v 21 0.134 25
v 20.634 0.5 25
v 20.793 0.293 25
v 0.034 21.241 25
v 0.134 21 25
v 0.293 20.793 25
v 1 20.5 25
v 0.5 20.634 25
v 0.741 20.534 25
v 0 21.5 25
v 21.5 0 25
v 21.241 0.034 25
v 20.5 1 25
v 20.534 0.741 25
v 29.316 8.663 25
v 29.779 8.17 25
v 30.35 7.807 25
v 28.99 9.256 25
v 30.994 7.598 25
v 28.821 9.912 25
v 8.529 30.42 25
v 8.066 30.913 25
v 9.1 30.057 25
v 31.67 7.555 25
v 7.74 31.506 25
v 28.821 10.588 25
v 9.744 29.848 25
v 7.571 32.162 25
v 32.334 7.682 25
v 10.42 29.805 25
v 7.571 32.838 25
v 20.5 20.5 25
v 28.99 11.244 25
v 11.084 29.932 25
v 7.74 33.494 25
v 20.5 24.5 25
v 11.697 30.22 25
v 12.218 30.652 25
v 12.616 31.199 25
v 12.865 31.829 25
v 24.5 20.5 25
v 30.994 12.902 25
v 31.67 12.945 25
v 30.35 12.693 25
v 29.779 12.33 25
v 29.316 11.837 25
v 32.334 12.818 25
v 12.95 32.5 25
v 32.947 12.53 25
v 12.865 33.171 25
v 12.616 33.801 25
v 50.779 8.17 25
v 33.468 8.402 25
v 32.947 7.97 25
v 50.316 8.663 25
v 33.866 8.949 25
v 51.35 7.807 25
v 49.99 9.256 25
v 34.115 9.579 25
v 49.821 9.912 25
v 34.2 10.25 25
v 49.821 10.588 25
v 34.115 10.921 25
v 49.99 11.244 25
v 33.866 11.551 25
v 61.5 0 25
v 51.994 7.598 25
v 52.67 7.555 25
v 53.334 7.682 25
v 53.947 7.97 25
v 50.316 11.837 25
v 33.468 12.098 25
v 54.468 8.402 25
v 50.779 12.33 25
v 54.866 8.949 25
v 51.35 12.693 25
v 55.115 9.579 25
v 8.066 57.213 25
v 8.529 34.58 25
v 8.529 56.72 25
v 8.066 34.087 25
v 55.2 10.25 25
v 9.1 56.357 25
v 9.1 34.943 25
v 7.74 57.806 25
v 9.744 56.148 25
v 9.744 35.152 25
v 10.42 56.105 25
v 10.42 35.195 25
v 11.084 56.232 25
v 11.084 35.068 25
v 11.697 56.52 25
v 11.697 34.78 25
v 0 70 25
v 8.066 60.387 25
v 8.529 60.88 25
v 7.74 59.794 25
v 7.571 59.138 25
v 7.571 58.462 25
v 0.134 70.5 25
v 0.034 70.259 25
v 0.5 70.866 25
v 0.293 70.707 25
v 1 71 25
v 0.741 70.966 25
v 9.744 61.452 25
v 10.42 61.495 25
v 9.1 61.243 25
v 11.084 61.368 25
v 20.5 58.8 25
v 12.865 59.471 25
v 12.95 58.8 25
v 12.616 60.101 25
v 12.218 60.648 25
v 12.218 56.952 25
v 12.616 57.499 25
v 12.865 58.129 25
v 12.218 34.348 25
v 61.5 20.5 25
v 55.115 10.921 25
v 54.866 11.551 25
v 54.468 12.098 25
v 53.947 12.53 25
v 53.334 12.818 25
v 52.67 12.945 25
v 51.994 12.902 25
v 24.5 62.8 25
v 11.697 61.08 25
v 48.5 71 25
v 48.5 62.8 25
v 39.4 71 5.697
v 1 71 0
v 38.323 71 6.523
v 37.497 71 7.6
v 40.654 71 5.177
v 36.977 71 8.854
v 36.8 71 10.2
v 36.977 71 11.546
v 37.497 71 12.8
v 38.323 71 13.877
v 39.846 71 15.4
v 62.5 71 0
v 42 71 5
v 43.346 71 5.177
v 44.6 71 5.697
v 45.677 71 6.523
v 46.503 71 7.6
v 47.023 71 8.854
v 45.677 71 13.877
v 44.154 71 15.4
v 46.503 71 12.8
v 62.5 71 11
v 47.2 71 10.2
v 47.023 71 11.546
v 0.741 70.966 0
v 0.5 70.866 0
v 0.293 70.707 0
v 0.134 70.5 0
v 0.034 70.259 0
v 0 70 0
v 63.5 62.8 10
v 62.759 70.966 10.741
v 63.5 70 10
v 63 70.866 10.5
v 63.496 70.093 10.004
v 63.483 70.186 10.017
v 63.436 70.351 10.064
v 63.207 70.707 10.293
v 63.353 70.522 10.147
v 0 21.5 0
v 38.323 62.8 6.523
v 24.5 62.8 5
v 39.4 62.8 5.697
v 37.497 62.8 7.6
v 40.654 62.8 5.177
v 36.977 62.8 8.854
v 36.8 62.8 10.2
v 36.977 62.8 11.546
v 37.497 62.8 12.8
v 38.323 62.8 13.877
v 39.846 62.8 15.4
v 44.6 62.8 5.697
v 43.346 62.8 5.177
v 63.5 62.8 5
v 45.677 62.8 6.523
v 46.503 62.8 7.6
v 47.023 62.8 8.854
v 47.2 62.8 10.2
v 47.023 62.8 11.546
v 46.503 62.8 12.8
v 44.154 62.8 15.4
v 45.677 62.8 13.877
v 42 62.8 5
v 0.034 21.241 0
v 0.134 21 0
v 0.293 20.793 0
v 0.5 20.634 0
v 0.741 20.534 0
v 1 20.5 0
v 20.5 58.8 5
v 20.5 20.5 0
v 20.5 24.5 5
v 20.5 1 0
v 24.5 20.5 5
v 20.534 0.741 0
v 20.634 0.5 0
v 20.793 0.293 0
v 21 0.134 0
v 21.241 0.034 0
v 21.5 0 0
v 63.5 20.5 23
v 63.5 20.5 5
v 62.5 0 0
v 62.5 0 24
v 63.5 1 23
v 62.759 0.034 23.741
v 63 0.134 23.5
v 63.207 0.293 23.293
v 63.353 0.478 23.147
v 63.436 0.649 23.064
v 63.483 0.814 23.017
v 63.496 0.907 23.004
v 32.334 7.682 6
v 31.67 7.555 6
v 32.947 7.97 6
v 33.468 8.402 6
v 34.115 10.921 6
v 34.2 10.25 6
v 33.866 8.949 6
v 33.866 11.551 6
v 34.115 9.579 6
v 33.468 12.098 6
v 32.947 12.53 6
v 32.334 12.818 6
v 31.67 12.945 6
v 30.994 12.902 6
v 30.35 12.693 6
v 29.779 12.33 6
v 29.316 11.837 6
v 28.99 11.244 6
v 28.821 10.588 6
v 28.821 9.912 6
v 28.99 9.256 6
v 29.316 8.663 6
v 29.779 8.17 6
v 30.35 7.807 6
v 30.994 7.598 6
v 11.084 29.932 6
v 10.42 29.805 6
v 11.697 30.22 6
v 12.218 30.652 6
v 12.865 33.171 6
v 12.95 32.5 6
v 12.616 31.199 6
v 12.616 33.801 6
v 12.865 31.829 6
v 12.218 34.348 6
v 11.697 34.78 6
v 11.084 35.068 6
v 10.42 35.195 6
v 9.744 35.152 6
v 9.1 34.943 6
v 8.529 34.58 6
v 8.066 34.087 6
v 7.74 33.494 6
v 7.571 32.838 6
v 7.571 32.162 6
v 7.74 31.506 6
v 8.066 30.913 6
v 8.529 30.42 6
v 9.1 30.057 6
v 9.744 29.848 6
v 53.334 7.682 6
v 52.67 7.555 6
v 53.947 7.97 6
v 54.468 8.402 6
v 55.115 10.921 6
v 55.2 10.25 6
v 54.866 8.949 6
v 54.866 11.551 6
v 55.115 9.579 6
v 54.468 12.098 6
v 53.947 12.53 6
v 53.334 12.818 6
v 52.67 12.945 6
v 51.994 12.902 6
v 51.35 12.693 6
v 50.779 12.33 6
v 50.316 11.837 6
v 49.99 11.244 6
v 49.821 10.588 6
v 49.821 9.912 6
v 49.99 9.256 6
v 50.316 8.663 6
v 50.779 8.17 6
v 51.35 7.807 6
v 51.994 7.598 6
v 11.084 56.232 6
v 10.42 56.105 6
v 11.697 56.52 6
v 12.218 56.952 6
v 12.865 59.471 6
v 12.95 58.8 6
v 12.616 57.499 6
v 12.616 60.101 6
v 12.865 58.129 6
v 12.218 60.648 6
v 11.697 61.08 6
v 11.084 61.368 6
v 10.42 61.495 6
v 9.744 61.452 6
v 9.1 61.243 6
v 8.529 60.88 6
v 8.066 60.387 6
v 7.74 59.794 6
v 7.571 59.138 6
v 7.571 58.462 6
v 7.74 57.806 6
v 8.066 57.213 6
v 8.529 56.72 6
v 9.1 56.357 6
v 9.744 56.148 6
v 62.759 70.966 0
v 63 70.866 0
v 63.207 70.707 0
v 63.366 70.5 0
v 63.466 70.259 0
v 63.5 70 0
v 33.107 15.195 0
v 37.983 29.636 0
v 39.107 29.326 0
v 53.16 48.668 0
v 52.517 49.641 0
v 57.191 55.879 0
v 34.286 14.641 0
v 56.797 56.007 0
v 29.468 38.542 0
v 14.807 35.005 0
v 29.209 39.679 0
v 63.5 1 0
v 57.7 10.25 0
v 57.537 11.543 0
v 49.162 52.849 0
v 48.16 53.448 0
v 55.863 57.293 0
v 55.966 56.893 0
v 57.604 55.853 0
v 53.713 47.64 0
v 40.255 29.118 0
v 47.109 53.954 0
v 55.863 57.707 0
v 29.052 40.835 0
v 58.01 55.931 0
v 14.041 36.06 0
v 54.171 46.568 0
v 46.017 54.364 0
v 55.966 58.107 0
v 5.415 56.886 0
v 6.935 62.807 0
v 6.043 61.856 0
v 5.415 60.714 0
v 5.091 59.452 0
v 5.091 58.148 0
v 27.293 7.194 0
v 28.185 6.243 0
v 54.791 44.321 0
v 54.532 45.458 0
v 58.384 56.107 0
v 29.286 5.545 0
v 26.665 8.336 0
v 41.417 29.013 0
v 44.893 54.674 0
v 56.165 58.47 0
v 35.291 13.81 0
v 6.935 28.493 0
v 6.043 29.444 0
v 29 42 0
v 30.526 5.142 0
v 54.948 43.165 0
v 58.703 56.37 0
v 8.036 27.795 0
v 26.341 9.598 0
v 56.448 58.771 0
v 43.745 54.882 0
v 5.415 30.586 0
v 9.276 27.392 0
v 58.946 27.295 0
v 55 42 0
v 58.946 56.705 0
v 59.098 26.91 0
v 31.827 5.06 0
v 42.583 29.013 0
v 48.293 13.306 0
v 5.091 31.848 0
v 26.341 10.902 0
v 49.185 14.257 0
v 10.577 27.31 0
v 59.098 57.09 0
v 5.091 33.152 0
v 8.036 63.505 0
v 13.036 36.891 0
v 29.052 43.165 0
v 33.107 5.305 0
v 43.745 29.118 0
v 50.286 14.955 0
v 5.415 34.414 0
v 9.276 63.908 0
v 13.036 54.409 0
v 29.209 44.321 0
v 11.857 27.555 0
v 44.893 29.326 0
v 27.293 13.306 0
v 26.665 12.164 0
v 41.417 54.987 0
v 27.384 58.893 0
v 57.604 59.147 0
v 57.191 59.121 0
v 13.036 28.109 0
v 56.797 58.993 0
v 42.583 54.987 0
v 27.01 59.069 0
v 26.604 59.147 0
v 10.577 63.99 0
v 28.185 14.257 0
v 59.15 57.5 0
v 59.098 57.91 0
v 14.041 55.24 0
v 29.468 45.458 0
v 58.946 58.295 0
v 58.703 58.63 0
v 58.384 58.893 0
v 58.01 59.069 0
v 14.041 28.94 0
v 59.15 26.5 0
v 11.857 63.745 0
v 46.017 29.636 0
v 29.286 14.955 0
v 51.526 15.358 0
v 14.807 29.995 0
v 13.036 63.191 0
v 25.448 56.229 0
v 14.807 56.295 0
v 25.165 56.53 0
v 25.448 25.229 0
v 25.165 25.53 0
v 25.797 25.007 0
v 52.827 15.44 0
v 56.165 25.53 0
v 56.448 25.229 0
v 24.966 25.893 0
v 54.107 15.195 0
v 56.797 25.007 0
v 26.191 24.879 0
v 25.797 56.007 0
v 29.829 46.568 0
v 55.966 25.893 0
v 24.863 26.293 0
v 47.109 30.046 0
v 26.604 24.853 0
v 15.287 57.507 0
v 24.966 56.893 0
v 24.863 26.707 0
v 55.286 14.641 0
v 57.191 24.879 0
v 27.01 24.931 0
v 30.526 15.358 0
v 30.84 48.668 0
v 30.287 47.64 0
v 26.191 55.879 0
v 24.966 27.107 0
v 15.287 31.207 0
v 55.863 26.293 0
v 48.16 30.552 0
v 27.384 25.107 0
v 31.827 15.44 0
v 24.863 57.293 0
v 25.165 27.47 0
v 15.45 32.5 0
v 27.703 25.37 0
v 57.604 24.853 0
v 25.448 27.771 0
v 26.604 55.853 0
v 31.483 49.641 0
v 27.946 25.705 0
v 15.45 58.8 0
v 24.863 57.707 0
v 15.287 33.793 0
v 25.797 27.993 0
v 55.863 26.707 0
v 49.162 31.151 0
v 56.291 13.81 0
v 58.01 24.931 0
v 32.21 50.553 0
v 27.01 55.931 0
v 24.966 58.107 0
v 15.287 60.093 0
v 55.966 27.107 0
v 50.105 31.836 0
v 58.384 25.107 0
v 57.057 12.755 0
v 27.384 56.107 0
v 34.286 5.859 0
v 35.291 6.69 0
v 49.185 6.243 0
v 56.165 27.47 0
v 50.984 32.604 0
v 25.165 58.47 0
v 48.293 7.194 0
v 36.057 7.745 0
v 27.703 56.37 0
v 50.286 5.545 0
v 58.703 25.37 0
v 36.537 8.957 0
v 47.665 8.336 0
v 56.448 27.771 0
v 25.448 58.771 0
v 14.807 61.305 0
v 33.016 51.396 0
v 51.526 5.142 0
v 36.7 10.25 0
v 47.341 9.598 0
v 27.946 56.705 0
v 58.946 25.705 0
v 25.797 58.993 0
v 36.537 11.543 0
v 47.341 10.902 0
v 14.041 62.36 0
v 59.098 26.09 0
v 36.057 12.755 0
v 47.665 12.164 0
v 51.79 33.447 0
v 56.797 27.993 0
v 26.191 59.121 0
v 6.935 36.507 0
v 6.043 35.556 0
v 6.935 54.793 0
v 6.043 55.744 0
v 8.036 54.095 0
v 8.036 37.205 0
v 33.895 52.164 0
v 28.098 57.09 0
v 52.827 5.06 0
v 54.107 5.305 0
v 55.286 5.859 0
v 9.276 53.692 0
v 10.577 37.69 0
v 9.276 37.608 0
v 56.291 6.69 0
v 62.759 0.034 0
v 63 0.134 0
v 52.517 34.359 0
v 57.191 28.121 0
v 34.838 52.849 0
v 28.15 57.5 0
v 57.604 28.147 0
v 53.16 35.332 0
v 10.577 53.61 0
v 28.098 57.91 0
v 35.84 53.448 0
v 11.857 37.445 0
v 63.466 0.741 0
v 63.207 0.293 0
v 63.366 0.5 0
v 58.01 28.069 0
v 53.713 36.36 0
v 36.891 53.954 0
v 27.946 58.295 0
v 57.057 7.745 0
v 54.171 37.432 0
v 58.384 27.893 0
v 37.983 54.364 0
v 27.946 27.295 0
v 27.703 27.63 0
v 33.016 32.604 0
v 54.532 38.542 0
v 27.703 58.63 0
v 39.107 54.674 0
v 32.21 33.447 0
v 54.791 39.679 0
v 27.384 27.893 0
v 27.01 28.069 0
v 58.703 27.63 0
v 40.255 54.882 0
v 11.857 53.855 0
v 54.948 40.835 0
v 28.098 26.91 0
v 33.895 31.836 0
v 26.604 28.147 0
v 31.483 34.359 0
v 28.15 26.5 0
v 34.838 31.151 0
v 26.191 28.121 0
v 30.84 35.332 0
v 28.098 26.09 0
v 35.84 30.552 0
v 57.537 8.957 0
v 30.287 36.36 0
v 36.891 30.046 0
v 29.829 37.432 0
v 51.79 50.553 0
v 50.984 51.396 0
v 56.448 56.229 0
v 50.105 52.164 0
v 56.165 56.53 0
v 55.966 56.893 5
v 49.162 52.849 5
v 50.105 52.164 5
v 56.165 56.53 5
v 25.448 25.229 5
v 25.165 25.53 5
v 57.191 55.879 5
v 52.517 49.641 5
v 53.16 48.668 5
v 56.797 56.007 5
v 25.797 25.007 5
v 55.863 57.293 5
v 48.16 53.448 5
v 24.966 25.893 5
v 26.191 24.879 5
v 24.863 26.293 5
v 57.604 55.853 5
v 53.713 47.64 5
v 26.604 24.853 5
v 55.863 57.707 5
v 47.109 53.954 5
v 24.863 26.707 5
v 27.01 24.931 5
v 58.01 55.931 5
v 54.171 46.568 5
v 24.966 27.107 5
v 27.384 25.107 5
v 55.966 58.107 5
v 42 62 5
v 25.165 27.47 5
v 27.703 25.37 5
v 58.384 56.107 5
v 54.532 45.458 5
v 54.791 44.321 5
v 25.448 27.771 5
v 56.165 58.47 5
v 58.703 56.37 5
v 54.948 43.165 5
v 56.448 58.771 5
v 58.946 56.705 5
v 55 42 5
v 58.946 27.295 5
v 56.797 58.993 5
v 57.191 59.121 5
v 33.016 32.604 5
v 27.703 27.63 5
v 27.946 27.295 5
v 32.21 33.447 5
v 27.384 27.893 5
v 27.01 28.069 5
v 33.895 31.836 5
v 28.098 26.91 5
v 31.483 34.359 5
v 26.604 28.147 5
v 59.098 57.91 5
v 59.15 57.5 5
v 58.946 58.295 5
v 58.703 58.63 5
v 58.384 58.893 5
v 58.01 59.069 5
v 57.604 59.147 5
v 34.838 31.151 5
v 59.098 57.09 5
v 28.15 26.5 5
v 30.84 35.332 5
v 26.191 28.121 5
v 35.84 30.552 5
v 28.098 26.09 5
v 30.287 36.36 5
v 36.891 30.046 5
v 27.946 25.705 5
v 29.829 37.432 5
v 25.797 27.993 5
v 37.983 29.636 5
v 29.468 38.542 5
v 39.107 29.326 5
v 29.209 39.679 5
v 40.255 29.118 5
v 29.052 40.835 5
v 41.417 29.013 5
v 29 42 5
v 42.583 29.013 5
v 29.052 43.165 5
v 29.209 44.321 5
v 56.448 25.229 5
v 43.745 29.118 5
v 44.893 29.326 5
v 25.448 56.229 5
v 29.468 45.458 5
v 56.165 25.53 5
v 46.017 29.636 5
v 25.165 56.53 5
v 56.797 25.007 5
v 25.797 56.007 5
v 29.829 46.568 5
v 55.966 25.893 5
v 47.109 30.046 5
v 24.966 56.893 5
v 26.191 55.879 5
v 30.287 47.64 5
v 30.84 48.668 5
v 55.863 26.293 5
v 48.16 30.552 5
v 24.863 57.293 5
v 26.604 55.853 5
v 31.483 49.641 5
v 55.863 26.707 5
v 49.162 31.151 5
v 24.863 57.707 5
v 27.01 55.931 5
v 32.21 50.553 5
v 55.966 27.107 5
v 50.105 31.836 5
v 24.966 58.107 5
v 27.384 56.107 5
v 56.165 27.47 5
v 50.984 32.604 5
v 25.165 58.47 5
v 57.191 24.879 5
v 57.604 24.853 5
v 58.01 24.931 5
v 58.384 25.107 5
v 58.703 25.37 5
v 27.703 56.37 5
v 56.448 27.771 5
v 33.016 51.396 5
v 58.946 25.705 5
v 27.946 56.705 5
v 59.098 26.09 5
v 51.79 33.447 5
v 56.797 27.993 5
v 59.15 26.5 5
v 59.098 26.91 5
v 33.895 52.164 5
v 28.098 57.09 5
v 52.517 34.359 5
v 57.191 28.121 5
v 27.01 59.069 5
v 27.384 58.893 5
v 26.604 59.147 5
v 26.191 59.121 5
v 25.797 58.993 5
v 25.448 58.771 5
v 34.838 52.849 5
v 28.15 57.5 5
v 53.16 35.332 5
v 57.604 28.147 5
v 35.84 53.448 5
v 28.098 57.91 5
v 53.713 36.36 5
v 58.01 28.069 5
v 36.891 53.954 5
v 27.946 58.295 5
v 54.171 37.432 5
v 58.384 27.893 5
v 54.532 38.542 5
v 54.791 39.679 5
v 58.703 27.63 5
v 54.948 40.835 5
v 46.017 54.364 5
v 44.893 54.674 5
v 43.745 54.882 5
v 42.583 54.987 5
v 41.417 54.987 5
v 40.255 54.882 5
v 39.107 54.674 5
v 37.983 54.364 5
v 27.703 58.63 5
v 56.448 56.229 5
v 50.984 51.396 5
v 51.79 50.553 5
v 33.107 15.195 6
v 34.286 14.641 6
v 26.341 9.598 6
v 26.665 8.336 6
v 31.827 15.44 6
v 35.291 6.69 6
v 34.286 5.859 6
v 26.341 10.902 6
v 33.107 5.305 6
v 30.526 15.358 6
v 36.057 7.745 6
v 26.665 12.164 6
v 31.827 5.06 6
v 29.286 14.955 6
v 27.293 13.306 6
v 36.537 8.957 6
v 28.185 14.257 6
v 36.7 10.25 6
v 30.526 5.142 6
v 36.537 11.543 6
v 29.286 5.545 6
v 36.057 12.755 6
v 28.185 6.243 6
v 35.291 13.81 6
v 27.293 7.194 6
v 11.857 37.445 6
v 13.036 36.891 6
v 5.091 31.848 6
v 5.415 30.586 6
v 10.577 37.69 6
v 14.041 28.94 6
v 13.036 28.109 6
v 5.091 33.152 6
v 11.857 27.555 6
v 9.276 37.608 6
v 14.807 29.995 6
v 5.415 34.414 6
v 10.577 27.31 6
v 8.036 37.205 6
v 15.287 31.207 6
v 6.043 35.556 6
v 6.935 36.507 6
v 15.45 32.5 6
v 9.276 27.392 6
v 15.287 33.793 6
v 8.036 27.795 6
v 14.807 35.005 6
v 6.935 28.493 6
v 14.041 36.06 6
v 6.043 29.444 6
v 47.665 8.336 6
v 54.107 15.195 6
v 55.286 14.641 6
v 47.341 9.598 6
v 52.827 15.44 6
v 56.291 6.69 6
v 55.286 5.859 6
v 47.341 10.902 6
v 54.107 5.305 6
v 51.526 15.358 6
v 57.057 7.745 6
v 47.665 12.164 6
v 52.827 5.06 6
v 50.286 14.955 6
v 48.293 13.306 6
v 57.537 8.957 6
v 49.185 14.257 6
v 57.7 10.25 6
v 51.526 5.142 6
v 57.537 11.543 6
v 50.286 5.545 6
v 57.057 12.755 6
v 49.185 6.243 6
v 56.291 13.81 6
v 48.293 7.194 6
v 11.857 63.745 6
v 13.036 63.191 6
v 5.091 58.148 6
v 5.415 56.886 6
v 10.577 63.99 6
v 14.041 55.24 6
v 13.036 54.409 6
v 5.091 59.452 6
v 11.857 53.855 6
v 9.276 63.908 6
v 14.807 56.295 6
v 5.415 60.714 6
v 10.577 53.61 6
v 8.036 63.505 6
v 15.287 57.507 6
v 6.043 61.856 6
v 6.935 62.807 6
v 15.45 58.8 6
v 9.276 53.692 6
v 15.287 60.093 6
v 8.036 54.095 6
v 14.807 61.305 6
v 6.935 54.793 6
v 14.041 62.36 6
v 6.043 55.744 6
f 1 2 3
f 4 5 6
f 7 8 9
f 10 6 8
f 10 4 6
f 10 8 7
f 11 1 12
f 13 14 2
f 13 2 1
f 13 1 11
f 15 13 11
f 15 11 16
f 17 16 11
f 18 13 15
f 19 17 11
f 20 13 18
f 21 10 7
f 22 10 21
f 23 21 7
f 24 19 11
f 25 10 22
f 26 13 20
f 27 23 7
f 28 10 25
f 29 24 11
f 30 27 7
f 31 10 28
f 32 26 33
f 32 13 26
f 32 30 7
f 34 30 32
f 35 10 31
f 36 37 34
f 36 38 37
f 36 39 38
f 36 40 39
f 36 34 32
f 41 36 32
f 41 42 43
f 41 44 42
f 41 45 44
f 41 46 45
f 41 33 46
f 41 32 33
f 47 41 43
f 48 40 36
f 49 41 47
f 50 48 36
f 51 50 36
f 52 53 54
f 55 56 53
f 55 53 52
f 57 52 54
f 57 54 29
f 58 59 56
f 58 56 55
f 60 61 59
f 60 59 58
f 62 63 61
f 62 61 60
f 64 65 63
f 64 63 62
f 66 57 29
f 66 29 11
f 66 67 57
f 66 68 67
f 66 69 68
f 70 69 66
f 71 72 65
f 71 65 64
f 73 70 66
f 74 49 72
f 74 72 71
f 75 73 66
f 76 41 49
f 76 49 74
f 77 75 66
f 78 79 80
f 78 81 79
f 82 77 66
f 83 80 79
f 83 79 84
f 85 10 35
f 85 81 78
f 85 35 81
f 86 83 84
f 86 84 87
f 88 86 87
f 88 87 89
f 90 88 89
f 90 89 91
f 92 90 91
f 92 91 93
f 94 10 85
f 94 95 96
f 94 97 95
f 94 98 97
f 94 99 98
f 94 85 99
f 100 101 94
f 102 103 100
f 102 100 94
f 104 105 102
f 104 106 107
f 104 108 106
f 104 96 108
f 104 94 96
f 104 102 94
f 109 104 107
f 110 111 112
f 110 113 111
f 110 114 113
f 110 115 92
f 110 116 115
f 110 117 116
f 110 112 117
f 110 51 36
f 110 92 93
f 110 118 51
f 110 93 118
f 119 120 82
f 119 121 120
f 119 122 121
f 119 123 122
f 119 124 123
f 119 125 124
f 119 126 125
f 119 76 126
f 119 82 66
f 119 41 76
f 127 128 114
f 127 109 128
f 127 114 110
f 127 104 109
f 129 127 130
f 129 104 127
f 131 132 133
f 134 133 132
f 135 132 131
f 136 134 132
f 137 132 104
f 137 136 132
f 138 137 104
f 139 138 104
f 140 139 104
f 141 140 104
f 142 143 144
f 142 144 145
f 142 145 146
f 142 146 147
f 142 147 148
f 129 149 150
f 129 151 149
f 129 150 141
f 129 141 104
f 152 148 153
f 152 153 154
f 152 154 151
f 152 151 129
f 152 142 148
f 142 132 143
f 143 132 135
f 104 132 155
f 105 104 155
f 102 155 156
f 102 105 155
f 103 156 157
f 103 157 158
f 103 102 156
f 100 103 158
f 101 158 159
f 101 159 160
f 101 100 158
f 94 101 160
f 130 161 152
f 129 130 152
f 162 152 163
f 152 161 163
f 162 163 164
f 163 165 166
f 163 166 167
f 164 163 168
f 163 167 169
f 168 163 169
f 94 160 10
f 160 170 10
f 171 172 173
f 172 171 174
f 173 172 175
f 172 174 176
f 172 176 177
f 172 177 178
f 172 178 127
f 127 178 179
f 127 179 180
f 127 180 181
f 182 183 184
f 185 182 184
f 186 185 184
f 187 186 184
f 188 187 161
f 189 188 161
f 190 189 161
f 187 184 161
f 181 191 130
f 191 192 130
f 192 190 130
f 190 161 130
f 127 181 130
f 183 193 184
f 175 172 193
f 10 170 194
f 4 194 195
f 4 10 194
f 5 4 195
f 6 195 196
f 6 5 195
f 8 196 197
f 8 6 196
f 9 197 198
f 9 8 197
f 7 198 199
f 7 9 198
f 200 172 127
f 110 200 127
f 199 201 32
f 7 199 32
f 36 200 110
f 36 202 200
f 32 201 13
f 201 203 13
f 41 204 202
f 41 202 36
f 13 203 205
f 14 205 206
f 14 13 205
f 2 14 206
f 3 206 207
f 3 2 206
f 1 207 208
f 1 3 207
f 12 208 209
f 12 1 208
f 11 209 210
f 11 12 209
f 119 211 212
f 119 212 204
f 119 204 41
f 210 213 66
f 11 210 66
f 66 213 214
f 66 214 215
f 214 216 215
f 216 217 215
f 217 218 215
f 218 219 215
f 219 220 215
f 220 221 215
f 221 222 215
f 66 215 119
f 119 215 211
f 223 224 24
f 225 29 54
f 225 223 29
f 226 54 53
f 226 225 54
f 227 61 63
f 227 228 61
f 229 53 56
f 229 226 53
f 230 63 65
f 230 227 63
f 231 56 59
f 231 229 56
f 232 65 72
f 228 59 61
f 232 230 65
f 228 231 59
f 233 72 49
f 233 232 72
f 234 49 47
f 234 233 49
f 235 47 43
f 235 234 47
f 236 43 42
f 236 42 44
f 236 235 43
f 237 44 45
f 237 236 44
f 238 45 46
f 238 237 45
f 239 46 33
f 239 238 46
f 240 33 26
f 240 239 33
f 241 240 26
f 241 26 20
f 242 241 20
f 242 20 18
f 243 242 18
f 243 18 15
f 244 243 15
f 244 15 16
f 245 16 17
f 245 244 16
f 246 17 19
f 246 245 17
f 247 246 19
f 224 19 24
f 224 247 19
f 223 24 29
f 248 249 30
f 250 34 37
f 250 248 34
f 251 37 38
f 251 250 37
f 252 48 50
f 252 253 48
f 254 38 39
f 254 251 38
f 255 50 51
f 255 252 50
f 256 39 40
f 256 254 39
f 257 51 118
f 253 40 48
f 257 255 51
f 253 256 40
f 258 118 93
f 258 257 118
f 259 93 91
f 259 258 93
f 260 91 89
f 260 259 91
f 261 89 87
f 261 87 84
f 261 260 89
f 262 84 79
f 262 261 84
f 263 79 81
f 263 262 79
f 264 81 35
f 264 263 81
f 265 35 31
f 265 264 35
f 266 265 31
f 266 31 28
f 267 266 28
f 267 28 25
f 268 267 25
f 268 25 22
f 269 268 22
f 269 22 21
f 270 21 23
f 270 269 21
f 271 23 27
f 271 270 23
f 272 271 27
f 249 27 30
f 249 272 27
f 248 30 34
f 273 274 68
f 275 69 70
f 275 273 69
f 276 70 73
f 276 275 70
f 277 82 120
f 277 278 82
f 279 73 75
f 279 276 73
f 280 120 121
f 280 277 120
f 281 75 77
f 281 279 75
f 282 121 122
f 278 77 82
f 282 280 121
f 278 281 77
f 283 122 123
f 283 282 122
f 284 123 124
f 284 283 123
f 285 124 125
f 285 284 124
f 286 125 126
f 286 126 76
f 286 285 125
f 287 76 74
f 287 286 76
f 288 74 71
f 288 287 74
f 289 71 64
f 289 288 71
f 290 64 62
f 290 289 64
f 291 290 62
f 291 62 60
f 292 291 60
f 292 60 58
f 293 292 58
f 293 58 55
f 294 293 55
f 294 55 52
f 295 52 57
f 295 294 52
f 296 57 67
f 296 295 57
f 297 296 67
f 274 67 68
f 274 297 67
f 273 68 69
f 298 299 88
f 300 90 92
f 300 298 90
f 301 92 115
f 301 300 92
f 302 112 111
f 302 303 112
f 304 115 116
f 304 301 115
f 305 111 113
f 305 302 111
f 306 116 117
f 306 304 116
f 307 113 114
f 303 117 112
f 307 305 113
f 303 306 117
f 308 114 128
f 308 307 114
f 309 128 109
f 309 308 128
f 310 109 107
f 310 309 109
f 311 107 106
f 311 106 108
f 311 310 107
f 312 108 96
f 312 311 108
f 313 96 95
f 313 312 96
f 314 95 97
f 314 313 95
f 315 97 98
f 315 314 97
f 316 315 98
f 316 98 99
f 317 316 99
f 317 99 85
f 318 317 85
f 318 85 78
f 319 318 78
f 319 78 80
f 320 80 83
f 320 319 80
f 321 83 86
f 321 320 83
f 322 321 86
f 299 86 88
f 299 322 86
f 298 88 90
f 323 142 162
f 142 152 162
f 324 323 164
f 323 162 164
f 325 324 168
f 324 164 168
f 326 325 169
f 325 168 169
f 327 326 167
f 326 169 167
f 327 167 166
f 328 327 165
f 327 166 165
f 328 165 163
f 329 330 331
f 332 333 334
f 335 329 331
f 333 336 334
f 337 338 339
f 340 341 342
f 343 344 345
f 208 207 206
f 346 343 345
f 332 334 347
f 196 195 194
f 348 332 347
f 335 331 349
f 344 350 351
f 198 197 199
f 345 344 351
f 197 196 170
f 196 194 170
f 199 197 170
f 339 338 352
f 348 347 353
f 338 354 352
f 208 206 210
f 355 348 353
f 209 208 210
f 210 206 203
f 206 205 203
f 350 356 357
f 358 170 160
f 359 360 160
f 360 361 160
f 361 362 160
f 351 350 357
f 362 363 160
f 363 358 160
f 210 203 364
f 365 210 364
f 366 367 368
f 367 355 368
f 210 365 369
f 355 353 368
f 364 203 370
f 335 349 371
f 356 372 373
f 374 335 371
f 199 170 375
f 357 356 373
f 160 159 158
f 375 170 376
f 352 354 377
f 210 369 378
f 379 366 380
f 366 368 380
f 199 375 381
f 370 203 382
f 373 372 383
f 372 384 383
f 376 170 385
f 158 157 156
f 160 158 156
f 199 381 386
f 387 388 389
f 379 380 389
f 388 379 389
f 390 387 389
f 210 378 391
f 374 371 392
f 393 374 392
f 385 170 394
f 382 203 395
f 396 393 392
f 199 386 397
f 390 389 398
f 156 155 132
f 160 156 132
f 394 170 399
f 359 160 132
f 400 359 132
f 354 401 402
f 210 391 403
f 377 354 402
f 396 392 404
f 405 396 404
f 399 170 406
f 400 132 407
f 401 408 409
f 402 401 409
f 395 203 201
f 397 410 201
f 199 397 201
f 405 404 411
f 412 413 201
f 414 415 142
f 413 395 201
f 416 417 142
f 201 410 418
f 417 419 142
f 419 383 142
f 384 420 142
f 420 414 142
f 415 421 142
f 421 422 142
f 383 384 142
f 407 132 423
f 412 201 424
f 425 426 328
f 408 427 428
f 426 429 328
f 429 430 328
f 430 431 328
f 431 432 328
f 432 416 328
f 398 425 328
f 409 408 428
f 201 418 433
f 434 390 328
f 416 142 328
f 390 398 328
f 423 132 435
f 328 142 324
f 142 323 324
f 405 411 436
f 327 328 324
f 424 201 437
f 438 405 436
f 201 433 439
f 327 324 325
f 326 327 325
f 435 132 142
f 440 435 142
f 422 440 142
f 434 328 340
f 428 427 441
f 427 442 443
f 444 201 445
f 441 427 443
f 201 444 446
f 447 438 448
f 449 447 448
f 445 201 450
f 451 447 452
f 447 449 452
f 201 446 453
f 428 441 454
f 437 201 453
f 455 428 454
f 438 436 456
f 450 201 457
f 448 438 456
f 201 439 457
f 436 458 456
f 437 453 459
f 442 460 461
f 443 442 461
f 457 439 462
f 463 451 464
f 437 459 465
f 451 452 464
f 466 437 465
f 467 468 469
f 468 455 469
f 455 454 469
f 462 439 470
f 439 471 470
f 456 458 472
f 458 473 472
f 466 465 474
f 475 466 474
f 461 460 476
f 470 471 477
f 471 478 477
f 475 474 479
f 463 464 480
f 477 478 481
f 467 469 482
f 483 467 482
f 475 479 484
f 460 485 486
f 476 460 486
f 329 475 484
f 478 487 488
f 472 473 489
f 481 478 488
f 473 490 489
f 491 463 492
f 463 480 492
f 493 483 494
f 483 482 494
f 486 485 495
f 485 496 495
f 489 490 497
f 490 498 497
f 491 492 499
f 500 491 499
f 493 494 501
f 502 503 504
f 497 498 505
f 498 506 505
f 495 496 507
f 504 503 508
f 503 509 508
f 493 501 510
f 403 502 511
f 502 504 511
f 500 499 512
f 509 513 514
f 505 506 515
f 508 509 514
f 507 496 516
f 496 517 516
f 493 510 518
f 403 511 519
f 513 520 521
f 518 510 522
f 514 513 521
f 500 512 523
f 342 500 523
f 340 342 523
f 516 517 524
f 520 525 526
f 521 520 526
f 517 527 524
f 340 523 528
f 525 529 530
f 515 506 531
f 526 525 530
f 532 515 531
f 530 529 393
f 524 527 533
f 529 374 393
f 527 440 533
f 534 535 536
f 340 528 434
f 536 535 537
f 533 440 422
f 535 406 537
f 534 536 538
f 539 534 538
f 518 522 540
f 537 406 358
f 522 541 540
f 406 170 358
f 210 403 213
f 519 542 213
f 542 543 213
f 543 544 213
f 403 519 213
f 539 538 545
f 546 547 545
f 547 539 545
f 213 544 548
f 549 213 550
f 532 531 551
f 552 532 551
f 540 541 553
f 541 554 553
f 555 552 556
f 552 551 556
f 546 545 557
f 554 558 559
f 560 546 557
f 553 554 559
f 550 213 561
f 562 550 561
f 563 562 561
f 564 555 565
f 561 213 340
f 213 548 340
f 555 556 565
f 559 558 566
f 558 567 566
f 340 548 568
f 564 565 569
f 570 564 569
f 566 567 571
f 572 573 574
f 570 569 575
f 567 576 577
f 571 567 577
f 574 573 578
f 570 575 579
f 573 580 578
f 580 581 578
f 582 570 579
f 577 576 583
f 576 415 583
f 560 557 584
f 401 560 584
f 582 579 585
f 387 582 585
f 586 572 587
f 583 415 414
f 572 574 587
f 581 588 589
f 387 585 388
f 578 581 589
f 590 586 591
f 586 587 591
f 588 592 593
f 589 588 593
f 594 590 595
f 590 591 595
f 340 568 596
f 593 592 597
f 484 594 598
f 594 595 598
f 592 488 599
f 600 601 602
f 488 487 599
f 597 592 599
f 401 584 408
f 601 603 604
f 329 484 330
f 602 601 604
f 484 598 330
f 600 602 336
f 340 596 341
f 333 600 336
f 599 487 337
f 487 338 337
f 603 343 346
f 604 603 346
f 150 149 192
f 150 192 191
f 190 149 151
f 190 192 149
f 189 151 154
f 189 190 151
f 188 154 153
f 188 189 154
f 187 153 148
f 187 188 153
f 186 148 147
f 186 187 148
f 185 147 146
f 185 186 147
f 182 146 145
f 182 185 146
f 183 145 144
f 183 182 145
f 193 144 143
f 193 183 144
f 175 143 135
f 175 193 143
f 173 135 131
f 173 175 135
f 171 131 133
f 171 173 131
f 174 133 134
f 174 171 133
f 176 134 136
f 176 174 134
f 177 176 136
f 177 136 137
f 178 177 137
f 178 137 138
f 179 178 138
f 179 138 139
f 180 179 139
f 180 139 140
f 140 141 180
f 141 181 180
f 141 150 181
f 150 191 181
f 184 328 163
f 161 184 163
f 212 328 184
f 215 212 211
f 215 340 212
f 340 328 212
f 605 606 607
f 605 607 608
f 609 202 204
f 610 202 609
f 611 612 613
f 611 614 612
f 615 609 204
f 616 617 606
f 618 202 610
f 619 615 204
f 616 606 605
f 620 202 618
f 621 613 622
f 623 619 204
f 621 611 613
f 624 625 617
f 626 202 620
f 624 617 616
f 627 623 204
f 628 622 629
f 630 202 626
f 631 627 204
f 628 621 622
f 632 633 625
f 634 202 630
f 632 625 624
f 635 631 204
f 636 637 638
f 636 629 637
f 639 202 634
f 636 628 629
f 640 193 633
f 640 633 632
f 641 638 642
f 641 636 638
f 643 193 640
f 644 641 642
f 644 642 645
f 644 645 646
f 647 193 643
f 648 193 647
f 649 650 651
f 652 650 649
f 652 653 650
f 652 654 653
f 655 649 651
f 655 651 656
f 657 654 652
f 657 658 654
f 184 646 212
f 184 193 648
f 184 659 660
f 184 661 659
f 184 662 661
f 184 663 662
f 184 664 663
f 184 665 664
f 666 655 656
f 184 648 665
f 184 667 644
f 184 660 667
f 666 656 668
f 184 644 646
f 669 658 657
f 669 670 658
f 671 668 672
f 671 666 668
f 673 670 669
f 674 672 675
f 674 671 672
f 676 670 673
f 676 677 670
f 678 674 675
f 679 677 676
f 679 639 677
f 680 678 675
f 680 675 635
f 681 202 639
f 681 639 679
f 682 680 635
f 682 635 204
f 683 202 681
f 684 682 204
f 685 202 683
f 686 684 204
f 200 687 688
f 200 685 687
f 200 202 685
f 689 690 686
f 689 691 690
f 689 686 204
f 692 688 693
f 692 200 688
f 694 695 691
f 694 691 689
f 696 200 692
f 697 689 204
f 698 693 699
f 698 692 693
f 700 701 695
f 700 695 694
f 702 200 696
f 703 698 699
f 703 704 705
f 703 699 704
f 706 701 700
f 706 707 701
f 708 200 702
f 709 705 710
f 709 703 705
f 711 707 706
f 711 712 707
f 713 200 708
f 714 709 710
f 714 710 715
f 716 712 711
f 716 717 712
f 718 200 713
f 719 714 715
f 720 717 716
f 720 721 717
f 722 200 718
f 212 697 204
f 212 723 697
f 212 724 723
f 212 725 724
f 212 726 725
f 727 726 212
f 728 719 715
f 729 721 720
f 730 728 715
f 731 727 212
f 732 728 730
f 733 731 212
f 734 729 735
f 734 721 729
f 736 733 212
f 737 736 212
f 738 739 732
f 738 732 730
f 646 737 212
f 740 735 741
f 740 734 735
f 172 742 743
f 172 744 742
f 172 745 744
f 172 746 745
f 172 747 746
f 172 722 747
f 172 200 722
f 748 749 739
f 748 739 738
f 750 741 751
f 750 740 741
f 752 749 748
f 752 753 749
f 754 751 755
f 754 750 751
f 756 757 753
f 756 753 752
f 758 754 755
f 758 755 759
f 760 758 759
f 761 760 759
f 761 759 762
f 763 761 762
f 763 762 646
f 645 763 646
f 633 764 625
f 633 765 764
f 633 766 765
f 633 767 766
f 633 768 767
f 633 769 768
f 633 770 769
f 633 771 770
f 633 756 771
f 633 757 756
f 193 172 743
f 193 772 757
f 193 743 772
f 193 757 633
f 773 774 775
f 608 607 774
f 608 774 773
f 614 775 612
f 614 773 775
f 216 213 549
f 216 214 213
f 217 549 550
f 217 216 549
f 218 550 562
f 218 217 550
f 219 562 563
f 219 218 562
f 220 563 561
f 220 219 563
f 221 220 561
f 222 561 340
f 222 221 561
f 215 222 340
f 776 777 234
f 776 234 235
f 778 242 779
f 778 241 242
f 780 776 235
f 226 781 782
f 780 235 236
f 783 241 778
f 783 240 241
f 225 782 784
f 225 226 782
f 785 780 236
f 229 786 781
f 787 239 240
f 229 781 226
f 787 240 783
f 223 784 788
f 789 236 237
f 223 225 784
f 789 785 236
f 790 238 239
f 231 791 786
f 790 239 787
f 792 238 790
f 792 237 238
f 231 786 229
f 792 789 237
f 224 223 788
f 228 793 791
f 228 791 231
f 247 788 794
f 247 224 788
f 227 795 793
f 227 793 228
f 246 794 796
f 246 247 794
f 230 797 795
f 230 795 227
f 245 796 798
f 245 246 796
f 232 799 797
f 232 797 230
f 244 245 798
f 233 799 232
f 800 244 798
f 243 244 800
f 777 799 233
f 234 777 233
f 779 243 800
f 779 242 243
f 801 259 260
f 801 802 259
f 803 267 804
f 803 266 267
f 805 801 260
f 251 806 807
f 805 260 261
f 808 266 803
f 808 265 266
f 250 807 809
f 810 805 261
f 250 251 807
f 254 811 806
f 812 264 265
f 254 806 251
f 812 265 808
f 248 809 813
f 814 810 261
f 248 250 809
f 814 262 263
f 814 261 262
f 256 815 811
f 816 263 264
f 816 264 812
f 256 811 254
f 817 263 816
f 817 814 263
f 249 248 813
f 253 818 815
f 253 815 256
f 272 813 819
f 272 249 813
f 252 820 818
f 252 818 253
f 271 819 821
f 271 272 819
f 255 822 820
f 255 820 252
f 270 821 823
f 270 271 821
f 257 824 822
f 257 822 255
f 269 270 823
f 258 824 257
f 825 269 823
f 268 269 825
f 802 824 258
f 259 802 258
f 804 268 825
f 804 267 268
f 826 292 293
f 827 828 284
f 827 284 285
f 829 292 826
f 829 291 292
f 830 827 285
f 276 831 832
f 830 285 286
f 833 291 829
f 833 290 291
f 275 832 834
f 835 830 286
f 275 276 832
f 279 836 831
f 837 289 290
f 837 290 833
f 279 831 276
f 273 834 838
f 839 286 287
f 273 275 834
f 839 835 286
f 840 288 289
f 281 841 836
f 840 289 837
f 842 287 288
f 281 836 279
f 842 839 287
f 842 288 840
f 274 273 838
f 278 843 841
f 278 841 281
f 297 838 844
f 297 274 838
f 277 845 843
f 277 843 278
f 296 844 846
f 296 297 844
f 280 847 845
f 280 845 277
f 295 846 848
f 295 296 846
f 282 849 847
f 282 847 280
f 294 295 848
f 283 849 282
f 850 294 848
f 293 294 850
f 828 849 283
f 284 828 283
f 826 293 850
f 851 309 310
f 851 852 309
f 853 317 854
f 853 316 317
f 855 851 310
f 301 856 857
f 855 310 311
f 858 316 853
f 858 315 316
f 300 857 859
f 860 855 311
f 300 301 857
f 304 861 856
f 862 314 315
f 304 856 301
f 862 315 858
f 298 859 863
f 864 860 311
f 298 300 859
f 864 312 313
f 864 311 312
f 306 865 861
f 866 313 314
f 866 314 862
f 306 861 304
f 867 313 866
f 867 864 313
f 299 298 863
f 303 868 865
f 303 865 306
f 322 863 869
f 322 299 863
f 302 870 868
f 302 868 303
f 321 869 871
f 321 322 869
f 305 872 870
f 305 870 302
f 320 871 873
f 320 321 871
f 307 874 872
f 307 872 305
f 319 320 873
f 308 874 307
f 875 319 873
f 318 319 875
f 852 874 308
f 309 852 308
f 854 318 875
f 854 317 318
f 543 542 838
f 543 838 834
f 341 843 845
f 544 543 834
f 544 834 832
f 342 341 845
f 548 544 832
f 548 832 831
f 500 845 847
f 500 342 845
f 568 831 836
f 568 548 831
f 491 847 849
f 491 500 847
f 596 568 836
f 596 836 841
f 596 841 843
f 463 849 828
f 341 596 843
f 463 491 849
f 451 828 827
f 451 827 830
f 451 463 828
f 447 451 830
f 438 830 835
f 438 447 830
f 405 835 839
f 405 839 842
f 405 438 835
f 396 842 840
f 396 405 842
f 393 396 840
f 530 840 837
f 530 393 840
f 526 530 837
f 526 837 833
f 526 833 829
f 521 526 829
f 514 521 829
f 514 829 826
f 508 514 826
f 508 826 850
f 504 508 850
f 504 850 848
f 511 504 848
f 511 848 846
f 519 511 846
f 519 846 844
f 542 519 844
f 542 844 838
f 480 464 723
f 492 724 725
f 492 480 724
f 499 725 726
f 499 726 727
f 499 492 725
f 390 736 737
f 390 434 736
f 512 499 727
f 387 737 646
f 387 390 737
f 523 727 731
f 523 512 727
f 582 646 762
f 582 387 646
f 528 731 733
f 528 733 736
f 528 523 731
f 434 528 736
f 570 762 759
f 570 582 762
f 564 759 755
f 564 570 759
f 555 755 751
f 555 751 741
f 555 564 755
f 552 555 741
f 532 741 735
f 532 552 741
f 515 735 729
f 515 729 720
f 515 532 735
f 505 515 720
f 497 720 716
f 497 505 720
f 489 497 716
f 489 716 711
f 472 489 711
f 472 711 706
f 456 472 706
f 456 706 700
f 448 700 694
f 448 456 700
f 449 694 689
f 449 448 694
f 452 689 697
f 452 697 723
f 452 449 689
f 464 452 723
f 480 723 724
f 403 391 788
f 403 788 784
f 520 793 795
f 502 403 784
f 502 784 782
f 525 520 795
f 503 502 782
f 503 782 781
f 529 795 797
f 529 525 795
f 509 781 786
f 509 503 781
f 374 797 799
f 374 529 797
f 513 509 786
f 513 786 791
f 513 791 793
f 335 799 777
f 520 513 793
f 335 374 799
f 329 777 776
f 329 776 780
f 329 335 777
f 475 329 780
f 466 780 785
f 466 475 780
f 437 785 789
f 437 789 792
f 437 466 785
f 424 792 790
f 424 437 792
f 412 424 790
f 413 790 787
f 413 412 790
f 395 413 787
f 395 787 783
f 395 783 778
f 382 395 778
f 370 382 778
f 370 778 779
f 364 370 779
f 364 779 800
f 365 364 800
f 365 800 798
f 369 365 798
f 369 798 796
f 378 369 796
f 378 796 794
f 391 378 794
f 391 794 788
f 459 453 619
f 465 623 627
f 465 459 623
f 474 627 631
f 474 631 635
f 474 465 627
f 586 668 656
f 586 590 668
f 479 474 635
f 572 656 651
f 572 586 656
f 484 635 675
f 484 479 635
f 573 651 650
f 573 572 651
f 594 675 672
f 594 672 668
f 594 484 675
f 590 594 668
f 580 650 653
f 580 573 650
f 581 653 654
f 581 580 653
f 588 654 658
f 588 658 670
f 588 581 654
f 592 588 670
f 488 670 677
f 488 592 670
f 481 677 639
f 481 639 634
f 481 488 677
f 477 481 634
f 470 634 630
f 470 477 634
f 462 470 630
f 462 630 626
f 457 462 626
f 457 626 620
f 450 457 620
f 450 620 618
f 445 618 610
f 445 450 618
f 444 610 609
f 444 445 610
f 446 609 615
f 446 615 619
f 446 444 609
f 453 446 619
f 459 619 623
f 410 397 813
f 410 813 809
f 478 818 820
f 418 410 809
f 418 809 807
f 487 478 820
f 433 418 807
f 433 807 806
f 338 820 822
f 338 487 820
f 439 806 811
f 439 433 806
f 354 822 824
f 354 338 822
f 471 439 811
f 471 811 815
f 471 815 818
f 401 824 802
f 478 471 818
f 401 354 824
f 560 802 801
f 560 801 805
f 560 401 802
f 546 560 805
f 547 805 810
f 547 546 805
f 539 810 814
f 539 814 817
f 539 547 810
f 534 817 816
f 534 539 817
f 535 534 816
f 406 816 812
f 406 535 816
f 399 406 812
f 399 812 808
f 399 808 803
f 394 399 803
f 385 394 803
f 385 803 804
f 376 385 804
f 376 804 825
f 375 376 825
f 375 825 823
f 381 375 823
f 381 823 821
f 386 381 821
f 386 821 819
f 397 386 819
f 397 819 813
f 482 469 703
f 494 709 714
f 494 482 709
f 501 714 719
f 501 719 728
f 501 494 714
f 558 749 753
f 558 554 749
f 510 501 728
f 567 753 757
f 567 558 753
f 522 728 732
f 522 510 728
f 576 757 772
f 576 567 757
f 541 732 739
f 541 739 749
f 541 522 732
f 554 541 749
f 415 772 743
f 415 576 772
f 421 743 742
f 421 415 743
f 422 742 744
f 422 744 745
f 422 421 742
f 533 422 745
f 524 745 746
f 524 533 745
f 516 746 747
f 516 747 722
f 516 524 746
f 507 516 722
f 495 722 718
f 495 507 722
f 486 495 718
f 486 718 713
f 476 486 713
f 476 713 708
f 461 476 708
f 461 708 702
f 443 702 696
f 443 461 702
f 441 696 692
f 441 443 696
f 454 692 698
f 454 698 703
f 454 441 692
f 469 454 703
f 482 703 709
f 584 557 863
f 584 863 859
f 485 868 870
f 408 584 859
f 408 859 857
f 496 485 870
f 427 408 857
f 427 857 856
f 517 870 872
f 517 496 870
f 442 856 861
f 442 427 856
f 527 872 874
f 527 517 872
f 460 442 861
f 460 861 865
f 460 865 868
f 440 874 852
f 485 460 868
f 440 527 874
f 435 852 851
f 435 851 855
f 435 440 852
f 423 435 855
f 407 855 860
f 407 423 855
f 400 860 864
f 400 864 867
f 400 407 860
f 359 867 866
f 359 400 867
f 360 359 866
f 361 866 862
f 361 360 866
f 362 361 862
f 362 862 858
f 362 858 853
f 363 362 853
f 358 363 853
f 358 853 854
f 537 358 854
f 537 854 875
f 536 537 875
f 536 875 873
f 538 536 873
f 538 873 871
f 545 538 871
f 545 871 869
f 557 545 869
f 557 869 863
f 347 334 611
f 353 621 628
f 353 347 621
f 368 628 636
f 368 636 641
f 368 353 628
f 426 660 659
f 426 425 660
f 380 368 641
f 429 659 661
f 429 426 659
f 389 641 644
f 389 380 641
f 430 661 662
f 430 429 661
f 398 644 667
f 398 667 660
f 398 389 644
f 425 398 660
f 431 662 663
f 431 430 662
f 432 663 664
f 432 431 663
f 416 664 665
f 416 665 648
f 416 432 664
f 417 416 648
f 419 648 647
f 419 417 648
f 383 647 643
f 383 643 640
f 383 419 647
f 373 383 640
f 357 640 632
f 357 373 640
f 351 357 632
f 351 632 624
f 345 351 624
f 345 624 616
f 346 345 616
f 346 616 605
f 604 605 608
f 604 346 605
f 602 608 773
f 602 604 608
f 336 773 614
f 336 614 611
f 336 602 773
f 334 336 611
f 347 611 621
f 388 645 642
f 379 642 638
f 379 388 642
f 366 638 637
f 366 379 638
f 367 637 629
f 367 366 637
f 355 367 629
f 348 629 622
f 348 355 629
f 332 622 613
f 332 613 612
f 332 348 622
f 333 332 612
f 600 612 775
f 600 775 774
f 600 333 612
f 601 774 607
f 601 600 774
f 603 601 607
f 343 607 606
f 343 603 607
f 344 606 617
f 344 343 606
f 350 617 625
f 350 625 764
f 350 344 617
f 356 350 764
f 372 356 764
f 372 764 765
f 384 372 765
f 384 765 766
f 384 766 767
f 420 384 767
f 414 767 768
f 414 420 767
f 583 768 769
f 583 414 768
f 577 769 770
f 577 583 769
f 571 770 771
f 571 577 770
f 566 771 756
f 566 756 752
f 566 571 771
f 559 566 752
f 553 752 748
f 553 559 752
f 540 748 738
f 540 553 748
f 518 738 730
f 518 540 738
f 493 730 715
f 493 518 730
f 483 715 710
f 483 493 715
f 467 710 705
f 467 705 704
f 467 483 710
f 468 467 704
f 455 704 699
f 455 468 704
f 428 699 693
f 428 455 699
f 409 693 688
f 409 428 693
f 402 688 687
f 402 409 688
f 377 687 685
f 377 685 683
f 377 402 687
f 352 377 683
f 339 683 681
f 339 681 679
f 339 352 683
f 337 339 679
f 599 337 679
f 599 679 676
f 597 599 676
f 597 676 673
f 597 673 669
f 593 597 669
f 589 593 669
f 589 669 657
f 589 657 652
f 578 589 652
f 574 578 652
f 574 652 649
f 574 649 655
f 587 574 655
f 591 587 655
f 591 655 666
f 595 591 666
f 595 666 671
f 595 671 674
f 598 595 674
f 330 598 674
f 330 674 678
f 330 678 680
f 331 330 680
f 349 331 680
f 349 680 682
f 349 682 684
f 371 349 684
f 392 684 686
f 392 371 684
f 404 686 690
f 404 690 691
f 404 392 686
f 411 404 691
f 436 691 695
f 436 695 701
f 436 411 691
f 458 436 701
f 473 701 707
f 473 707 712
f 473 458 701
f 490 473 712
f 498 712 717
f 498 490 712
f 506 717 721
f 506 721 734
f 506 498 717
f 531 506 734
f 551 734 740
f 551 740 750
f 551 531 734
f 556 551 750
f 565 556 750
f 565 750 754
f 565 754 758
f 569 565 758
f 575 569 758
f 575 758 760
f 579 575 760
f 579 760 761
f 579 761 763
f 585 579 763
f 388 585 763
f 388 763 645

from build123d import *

# Parameters (mm, degrees)
EXTRUDE003_DEPTH           = 10
EXTRUDE003_PLACEMENT_ANGLE = 90
SKETCH002_R                = 2.7
EXTRUDE002_DEPTH           = 25
SKETCH001_R                = 5.2
EXTRUDE001_DEPTH           = 6
SKETCH_R                   = 13
SKETCH_R_2                 = 1.65
EXTRUDE_DEPTH              = 5
BOX002_W                   = 43
BOX002_H                   = 42.3
BOX002_DEPTH               = 20
CHAMFER_SIZE               = 4
BOX001_W                   = 20.5
BOX001_H                   = 20.5
BOX001_DEPTH               = 25
BOX_W                      = 63.5
BOX_H                      = 71
BOX_DEPTH                  = 25
CHAMFER001_1_SIZE          = 15
CHAMFER001_2_SIZE          = 2
FILLET_R                   = 1


with BuildPart() as m10_repraphole_extr:
    # Sketch003 → Extrude003 (new body)
    with BuildSketch(Plane.YZ):
        with BuildLine():
            ThreePointArc((-3.676943, 3.676968), (0, -5.2), (3.676943, 3.676968))
            Line((2.153911, 5.2), (3.676943, 3.676968))
            Line((-2.153911, 5.2), (2.153911, 5.2))
            Line((-3.676943, 3.676968), (-2.153911, 5.2))
        make_face()
    extrude(amount=EXTRUDE003_DEPTH)


with BuildPart() as m10_repraphole_extr_1:
    # Extrude003 placement: moved
    add(m10_repraphole_extr.part.moved(Location((42, 62, 10.2))).rotate(Axis((42, 62, 10.2), (0, 0, 1)), EXTRUDE003_PLACEMENT_ANGLE))


with BuildPart() as huecos_tornillos_extr:
    # Sketch002 → Extrude002 (new body)
    with BuildSketch(Plane.XY):
        with Locations((31.5, 10.25)):
            Circle(SKETCH002_R)
        with Locations((52.5, 10.25)):
            Circle(SKETCH002_R)
        with Locations((10.25, 32.5)):
            Circle(SKETCH002_R)
        with Locations((10.25, 58.8)):
            Circle(SKETCH002_R)
    extrude(amount=EXTRUDE002_DEPTH)


with BuildPart() as huecos:
    # Sketch001 → Extrude001 (new body)
    with BuildSketch(Plane.XY):
        with Locations((31.5, 10.25)):
            Circle(SKETCH001_R)
        with Locations((52.5, 10.25)):
            Circle(SKETCH001_R)
        with Locations((10.25, 32.5)):
            Circle(SKETCH001_R)
        with Locations((10.25, 58.8)):
            Circle(SKETCH001_R)
    extrude(amount=EXTRUDE001_DEPTH)

    # Fusion001: union huecos_tornillos_extr
    add(huecos_tornillos_extr.part)

    # Fusion002: union M10_repraphole_extr
    add(m10_repraphole_extr_1.part)


with BuildPart() as agujero_motor:
    # Sketch → Extrude (new body)
    with BuildSketch(Plane(origin=(20.5, 20.5, 25), x_dir=(1, 0, 0), z_dir=(0, 0, 1))):
        with Locations((21.5, 21.5)):
            Circle(SKETCH_R)
        with Locations((6, 37)):
            Circle(SKETCH_R_2)
        with Locations((37, 37)):
            Circle(SKETCH_R_2)
        with Locations((37, 6)):
            Circle(SKETCH_R_2)
        with Locations((6, 6)):
            Circle(SKETCH_R_2)
    extrude(amount=EXTRUDE_DEPTH)


with BuildPart() as agujero_motor_1:
    # Extrude placement: moved
    add(agujero_motor.part.moved(Location((0, 0, -25))))


with BuildPart() as hueco_motor_total:
    # Box002 → Box002 (new body)
    with BuildSketch(Plane(origin=(20.5, 20.5, 5), x_dir=(1, 0, 0), z_dir=(0, 0, 1))):
        with Locations((21.5, 21.15)):
            Rectangle(BOX002_W, BOX002_H)
    extrude(amount=BOX002_DEPTH)

    # Chamfer
    chamfer_edges = [hueco_motor_total.edges().sort_by_distance(p)[0] for p in [
        (20.5, 20.5, 15),
        (20.5, 62.8, 15),
    ]]
    chamfer(chamfer_edges, length=CHAMFER_SIZE)

    # Fusion: union agujero_motor
    add(agujero_motor_1.part)


with BuildPart() as hueco_columna_z:
    # Box001 → Box001 (new body)
    with BuildSketch(Plane.XY):
        with Locations((10.25, 10.25)):
            Rectangle(BOX001_W, BOX001_H)
    extrude(amount=BOX001_DEPTH)


with BuildPart() as ymotorleft:
    # Box → Box (new body)
    with BuildSketch(Plane.XY):
        with Locations((31.75, 35.5)):
            Rectangle(BOX_W, BOX_H)
    extrude(amount=BOX_DEPTH)

    # Cut: cut hueco_columna_z
    add(hueco_columna_z.part, mode=Mode.SUBTRACT)

    # Cut001: cut hueco_motor_total
    add(hueco_motor_total.part, mode=Mode.SUBTRACT)

    # Cut002: cut huecos
    add(huecos.part, mode=Mode.SUBTRACT)

    # Chamfer001 1
    chamfer001_1_edges = [ymotorleft.edges().sort_by_distance(p)[0] for p in [
        (63.5, 66.9, 25),
    ]]
    chamfer(chamfer001_1_edges, length=CHAMFER001_1_SIZE)

    # Chamfer001 2
    chamfer001_2_edges = [ymotorleft.edges().sort_by_distance(p)[0] for p in [
        (63.5, 10.25, 25),
    ]]
    chamfer(chamfer001_2_edges, length=CHAMFER001_2_SIZE)

    # Fillet
    fillet_edges = [ymotorleft.edges().sort_by_distance(p)[0] for p in [
        (63.5, 71, 5),
        (0, 71, 12.5),
        (0, 20.5, 12.5),
        (20.5, 0, 12.5),
        (63.5, 0, 11.5),
    ]]
    fillet(fillet_edges, radius=FILLET_R)


solid = ymotorleft.part
